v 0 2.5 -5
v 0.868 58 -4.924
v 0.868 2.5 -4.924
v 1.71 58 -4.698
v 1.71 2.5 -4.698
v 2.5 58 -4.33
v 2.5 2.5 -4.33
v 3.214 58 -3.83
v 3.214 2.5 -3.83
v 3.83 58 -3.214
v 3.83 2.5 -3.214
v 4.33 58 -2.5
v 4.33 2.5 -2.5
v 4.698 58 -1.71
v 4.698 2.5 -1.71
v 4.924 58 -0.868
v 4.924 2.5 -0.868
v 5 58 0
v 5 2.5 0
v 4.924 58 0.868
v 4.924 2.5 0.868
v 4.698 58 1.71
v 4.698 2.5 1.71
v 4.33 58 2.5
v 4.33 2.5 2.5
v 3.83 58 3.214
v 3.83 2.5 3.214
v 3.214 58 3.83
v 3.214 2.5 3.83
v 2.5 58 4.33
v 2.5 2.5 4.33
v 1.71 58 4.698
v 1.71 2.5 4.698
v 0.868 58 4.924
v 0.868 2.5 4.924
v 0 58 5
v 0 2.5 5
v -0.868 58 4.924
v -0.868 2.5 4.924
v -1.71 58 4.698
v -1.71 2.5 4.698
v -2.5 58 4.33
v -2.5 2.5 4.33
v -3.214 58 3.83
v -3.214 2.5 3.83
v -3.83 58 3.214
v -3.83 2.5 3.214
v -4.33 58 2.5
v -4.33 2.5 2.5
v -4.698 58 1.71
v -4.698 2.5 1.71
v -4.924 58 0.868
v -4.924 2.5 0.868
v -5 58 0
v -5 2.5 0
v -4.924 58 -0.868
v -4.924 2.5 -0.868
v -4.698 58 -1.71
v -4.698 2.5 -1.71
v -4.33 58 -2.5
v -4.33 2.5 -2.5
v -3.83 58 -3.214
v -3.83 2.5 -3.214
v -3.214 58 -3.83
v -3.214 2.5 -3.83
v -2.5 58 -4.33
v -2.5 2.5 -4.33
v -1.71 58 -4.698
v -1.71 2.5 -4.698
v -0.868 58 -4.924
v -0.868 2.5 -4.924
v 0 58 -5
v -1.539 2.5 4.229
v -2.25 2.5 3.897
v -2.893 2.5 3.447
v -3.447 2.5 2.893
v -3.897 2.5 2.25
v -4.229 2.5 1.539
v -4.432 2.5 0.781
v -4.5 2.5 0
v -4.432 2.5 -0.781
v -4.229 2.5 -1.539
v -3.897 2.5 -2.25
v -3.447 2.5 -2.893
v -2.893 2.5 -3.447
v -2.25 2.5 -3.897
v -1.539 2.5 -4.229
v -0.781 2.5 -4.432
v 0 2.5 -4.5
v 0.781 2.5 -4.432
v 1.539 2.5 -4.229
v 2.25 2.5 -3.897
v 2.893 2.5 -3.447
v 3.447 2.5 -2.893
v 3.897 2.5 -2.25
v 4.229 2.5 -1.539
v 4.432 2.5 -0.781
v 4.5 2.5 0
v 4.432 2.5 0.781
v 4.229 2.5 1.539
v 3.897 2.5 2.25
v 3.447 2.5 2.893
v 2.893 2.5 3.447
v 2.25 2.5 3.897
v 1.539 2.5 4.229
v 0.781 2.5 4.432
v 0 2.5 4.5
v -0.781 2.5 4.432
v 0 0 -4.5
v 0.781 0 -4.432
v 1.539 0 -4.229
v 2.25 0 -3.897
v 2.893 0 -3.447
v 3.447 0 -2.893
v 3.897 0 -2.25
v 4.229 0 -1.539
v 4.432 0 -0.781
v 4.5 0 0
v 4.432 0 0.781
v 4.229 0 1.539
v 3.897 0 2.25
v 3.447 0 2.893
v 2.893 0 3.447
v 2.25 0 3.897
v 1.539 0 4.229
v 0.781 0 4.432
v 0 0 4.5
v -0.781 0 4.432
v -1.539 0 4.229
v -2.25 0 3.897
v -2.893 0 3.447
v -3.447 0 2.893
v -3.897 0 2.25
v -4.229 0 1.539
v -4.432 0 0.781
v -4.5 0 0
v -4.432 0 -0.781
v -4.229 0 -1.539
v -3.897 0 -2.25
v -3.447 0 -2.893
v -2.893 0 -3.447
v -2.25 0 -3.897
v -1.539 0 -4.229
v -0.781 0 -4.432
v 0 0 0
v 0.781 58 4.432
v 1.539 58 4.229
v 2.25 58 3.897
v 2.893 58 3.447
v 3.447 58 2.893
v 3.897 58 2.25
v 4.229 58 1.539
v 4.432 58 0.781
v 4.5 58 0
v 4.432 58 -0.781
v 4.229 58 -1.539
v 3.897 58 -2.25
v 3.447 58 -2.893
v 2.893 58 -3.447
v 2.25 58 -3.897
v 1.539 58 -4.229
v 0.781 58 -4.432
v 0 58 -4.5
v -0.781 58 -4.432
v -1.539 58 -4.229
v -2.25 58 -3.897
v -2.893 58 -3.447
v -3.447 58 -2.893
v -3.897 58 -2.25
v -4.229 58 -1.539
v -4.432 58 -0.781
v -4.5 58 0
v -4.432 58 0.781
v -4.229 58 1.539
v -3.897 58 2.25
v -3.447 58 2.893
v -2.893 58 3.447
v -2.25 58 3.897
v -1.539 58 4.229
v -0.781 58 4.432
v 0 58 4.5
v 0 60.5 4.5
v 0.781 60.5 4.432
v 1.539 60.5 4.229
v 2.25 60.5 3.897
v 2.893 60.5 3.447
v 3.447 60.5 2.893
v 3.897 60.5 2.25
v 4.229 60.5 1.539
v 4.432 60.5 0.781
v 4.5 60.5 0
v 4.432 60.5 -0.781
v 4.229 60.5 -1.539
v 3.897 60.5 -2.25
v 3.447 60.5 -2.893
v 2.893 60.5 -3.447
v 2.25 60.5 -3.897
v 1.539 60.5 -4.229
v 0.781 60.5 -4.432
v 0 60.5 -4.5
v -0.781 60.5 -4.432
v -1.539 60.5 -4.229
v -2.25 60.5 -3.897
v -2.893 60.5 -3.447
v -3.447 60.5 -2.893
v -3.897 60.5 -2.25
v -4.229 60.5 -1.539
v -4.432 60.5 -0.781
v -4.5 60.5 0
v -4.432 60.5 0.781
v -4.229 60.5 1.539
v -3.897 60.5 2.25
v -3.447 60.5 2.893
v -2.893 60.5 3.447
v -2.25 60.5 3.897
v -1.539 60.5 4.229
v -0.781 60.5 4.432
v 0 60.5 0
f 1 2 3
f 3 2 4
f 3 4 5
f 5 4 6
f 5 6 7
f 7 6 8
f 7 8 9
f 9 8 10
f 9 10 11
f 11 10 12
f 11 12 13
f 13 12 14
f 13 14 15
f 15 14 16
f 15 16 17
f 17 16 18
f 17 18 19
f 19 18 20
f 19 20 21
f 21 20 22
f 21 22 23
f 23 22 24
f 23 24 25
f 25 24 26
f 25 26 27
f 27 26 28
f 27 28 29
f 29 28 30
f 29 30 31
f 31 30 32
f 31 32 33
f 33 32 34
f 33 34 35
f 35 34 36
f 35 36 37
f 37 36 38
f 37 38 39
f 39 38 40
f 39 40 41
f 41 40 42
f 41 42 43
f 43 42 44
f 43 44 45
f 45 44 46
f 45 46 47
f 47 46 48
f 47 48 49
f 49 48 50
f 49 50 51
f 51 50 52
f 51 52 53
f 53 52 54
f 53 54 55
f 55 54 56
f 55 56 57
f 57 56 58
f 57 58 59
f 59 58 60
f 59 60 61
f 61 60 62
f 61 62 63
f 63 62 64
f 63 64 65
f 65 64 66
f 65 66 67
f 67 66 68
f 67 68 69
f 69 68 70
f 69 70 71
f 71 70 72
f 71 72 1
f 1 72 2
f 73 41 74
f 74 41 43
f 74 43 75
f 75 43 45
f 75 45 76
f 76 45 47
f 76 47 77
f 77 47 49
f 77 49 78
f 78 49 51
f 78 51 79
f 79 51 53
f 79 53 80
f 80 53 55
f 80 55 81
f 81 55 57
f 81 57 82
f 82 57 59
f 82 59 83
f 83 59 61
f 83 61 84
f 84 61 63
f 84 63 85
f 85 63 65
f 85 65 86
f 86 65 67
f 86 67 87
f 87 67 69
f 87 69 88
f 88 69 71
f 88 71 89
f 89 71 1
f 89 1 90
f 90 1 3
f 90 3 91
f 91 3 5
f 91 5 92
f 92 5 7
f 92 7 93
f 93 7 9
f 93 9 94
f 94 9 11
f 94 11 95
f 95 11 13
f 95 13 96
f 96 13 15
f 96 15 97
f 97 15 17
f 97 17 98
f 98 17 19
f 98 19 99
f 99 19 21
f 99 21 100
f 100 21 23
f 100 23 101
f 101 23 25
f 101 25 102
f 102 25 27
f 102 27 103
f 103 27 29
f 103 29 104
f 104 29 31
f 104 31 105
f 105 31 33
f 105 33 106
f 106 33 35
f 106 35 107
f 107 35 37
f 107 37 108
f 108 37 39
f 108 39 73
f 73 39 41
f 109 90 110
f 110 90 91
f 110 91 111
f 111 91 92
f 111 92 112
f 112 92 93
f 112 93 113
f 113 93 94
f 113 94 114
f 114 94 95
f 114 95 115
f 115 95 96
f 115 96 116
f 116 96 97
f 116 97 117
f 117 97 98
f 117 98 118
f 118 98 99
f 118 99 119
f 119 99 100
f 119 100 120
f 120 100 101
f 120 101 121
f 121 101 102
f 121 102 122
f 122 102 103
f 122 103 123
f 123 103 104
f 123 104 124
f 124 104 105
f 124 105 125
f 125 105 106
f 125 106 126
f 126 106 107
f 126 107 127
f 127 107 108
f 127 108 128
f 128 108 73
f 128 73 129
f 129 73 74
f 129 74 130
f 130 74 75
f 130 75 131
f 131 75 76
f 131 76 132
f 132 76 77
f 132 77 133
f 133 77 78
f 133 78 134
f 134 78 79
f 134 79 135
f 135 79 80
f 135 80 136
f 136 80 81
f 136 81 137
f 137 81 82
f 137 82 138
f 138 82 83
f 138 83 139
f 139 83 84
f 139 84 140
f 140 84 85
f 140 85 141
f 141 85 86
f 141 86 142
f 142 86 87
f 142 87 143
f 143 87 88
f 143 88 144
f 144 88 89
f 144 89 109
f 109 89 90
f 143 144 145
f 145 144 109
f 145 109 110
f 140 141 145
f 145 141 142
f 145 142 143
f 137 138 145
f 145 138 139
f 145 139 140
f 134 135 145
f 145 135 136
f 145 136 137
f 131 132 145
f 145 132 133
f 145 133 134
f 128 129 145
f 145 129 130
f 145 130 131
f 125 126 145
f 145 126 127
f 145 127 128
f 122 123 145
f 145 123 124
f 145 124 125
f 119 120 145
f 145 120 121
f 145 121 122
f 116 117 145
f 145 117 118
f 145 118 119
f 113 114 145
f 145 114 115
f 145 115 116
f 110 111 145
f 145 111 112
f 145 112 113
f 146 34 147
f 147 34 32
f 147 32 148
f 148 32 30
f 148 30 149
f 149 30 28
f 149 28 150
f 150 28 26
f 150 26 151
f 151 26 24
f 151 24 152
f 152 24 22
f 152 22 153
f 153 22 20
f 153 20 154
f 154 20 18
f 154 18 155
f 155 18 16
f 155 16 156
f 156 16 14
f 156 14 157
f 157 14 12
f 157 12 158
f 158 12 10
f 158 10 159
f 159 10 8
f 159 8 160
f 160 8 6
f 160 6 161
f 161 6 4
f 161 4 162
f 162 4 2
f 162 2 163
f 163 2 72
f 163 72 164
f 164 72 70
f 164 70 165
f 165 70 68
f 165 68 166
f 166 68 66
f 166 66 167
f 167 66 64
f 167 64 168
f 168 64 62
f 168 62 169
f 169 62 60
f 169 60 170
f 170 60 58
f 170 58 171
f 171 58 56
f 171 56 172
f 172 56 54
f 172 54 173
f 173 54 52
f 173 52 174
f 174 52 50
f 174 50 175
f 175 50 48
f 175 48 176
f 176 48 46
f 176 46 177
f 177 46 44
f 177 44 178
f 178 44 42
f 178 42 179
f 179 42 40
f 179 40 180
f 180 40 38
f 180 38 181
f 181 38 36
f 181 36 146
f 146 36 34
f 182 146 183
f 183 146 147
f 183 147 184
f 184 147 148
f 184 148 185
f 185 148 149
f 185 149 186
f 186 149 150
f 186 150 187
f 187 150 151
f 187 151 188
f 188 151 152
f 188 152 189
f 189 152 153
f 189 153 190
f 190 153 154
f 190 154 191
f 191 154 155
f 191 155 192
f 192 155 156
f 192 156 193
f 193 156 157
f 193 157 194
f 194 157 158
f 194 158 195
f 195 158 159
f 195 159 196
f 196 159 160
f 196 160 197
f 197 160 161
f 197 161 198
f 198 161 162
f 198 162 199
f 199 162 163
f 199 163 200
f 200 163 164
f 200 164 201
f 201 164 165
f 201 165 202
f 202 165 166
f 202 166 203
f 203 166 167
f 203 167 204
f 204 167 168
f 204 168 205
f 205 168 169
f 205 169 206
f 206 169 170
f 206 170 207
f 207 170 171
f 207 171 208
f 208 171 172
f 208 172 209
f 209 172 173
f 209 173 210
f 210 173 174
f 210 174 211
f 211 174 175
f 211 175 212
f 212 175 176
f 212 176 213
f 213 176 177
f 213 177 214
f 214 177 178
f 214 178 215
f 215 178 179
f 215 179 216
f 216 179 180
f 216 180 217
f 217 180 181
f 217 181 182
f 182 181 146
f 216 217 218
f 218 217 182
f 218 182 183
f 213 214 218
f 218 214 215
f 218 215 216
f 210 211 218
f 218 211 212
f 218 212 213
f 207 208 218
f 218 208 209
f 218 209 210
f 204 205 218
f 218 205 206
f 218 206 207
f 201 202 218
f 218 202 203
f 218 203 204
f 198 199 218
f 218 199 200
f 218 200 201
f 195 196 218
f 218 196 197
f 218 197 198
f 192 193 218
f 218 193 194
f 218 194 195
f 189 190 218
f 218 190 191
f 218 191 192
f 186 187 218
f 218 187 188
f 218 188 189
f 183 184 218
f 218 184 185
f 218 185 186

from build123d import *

# Parameters (mm, degrees)
SKETCH1_R           = 5
BOSS_EXTRUDE1_DEPTH = 60.5
SKETCH24_R          = 5
SKETCH24_R_2        = 4.5
CUT_EXTRUDE3_DEPTH  = 2.5
SKETCH25_R          = 5
SKETCH25_R_2        = 4.5
CUT_EXTRUDE4_DEPTH  = 2.5


with BuildPart() as part:
    # Sketch1 → Boss-Extrude1 (new body)
    with BuildSketch(Plane(origin=(0, 0, 0), x_dir=(1, 0, 0), z_dir=(0, 1, 0))):
        Circle(SKETCH1_R)
    extrude(amount=BOSS_EXTRUDE1_DEPTH)

    # Sketch24 → Cut-Extrude3 (cut)
    with BuildSketch(Plane(origin=(0, 0, 0), x_dir=(-1, 0, 0), z_dir=(0, -1, 0))):
        Circle(SKETCH24_R)
        Circle(SKETCH24_R_2, mode=Mode.SUBTRACT)
    extrude(amount=-CUT_EXTRUDE3_DEPTH, mode=Mode.SUBTRACT)

    # Sketch25 → Cut-Extrude4 (cut)
    with BuildSketch(Plane(origin=(0, 60.5, 0), x_dir=(1, 0, 0), z_dir=(0, 1, 0))):
        Circle(SKETCH25_R)
        Circle(SKETCH25_R_2, mode=Mode.SUBTRACT)
    extrude(amount=-CUT_EXTRUDE4_DEPTH, mode=Mode.SUBTRACT)


solid = part.part
